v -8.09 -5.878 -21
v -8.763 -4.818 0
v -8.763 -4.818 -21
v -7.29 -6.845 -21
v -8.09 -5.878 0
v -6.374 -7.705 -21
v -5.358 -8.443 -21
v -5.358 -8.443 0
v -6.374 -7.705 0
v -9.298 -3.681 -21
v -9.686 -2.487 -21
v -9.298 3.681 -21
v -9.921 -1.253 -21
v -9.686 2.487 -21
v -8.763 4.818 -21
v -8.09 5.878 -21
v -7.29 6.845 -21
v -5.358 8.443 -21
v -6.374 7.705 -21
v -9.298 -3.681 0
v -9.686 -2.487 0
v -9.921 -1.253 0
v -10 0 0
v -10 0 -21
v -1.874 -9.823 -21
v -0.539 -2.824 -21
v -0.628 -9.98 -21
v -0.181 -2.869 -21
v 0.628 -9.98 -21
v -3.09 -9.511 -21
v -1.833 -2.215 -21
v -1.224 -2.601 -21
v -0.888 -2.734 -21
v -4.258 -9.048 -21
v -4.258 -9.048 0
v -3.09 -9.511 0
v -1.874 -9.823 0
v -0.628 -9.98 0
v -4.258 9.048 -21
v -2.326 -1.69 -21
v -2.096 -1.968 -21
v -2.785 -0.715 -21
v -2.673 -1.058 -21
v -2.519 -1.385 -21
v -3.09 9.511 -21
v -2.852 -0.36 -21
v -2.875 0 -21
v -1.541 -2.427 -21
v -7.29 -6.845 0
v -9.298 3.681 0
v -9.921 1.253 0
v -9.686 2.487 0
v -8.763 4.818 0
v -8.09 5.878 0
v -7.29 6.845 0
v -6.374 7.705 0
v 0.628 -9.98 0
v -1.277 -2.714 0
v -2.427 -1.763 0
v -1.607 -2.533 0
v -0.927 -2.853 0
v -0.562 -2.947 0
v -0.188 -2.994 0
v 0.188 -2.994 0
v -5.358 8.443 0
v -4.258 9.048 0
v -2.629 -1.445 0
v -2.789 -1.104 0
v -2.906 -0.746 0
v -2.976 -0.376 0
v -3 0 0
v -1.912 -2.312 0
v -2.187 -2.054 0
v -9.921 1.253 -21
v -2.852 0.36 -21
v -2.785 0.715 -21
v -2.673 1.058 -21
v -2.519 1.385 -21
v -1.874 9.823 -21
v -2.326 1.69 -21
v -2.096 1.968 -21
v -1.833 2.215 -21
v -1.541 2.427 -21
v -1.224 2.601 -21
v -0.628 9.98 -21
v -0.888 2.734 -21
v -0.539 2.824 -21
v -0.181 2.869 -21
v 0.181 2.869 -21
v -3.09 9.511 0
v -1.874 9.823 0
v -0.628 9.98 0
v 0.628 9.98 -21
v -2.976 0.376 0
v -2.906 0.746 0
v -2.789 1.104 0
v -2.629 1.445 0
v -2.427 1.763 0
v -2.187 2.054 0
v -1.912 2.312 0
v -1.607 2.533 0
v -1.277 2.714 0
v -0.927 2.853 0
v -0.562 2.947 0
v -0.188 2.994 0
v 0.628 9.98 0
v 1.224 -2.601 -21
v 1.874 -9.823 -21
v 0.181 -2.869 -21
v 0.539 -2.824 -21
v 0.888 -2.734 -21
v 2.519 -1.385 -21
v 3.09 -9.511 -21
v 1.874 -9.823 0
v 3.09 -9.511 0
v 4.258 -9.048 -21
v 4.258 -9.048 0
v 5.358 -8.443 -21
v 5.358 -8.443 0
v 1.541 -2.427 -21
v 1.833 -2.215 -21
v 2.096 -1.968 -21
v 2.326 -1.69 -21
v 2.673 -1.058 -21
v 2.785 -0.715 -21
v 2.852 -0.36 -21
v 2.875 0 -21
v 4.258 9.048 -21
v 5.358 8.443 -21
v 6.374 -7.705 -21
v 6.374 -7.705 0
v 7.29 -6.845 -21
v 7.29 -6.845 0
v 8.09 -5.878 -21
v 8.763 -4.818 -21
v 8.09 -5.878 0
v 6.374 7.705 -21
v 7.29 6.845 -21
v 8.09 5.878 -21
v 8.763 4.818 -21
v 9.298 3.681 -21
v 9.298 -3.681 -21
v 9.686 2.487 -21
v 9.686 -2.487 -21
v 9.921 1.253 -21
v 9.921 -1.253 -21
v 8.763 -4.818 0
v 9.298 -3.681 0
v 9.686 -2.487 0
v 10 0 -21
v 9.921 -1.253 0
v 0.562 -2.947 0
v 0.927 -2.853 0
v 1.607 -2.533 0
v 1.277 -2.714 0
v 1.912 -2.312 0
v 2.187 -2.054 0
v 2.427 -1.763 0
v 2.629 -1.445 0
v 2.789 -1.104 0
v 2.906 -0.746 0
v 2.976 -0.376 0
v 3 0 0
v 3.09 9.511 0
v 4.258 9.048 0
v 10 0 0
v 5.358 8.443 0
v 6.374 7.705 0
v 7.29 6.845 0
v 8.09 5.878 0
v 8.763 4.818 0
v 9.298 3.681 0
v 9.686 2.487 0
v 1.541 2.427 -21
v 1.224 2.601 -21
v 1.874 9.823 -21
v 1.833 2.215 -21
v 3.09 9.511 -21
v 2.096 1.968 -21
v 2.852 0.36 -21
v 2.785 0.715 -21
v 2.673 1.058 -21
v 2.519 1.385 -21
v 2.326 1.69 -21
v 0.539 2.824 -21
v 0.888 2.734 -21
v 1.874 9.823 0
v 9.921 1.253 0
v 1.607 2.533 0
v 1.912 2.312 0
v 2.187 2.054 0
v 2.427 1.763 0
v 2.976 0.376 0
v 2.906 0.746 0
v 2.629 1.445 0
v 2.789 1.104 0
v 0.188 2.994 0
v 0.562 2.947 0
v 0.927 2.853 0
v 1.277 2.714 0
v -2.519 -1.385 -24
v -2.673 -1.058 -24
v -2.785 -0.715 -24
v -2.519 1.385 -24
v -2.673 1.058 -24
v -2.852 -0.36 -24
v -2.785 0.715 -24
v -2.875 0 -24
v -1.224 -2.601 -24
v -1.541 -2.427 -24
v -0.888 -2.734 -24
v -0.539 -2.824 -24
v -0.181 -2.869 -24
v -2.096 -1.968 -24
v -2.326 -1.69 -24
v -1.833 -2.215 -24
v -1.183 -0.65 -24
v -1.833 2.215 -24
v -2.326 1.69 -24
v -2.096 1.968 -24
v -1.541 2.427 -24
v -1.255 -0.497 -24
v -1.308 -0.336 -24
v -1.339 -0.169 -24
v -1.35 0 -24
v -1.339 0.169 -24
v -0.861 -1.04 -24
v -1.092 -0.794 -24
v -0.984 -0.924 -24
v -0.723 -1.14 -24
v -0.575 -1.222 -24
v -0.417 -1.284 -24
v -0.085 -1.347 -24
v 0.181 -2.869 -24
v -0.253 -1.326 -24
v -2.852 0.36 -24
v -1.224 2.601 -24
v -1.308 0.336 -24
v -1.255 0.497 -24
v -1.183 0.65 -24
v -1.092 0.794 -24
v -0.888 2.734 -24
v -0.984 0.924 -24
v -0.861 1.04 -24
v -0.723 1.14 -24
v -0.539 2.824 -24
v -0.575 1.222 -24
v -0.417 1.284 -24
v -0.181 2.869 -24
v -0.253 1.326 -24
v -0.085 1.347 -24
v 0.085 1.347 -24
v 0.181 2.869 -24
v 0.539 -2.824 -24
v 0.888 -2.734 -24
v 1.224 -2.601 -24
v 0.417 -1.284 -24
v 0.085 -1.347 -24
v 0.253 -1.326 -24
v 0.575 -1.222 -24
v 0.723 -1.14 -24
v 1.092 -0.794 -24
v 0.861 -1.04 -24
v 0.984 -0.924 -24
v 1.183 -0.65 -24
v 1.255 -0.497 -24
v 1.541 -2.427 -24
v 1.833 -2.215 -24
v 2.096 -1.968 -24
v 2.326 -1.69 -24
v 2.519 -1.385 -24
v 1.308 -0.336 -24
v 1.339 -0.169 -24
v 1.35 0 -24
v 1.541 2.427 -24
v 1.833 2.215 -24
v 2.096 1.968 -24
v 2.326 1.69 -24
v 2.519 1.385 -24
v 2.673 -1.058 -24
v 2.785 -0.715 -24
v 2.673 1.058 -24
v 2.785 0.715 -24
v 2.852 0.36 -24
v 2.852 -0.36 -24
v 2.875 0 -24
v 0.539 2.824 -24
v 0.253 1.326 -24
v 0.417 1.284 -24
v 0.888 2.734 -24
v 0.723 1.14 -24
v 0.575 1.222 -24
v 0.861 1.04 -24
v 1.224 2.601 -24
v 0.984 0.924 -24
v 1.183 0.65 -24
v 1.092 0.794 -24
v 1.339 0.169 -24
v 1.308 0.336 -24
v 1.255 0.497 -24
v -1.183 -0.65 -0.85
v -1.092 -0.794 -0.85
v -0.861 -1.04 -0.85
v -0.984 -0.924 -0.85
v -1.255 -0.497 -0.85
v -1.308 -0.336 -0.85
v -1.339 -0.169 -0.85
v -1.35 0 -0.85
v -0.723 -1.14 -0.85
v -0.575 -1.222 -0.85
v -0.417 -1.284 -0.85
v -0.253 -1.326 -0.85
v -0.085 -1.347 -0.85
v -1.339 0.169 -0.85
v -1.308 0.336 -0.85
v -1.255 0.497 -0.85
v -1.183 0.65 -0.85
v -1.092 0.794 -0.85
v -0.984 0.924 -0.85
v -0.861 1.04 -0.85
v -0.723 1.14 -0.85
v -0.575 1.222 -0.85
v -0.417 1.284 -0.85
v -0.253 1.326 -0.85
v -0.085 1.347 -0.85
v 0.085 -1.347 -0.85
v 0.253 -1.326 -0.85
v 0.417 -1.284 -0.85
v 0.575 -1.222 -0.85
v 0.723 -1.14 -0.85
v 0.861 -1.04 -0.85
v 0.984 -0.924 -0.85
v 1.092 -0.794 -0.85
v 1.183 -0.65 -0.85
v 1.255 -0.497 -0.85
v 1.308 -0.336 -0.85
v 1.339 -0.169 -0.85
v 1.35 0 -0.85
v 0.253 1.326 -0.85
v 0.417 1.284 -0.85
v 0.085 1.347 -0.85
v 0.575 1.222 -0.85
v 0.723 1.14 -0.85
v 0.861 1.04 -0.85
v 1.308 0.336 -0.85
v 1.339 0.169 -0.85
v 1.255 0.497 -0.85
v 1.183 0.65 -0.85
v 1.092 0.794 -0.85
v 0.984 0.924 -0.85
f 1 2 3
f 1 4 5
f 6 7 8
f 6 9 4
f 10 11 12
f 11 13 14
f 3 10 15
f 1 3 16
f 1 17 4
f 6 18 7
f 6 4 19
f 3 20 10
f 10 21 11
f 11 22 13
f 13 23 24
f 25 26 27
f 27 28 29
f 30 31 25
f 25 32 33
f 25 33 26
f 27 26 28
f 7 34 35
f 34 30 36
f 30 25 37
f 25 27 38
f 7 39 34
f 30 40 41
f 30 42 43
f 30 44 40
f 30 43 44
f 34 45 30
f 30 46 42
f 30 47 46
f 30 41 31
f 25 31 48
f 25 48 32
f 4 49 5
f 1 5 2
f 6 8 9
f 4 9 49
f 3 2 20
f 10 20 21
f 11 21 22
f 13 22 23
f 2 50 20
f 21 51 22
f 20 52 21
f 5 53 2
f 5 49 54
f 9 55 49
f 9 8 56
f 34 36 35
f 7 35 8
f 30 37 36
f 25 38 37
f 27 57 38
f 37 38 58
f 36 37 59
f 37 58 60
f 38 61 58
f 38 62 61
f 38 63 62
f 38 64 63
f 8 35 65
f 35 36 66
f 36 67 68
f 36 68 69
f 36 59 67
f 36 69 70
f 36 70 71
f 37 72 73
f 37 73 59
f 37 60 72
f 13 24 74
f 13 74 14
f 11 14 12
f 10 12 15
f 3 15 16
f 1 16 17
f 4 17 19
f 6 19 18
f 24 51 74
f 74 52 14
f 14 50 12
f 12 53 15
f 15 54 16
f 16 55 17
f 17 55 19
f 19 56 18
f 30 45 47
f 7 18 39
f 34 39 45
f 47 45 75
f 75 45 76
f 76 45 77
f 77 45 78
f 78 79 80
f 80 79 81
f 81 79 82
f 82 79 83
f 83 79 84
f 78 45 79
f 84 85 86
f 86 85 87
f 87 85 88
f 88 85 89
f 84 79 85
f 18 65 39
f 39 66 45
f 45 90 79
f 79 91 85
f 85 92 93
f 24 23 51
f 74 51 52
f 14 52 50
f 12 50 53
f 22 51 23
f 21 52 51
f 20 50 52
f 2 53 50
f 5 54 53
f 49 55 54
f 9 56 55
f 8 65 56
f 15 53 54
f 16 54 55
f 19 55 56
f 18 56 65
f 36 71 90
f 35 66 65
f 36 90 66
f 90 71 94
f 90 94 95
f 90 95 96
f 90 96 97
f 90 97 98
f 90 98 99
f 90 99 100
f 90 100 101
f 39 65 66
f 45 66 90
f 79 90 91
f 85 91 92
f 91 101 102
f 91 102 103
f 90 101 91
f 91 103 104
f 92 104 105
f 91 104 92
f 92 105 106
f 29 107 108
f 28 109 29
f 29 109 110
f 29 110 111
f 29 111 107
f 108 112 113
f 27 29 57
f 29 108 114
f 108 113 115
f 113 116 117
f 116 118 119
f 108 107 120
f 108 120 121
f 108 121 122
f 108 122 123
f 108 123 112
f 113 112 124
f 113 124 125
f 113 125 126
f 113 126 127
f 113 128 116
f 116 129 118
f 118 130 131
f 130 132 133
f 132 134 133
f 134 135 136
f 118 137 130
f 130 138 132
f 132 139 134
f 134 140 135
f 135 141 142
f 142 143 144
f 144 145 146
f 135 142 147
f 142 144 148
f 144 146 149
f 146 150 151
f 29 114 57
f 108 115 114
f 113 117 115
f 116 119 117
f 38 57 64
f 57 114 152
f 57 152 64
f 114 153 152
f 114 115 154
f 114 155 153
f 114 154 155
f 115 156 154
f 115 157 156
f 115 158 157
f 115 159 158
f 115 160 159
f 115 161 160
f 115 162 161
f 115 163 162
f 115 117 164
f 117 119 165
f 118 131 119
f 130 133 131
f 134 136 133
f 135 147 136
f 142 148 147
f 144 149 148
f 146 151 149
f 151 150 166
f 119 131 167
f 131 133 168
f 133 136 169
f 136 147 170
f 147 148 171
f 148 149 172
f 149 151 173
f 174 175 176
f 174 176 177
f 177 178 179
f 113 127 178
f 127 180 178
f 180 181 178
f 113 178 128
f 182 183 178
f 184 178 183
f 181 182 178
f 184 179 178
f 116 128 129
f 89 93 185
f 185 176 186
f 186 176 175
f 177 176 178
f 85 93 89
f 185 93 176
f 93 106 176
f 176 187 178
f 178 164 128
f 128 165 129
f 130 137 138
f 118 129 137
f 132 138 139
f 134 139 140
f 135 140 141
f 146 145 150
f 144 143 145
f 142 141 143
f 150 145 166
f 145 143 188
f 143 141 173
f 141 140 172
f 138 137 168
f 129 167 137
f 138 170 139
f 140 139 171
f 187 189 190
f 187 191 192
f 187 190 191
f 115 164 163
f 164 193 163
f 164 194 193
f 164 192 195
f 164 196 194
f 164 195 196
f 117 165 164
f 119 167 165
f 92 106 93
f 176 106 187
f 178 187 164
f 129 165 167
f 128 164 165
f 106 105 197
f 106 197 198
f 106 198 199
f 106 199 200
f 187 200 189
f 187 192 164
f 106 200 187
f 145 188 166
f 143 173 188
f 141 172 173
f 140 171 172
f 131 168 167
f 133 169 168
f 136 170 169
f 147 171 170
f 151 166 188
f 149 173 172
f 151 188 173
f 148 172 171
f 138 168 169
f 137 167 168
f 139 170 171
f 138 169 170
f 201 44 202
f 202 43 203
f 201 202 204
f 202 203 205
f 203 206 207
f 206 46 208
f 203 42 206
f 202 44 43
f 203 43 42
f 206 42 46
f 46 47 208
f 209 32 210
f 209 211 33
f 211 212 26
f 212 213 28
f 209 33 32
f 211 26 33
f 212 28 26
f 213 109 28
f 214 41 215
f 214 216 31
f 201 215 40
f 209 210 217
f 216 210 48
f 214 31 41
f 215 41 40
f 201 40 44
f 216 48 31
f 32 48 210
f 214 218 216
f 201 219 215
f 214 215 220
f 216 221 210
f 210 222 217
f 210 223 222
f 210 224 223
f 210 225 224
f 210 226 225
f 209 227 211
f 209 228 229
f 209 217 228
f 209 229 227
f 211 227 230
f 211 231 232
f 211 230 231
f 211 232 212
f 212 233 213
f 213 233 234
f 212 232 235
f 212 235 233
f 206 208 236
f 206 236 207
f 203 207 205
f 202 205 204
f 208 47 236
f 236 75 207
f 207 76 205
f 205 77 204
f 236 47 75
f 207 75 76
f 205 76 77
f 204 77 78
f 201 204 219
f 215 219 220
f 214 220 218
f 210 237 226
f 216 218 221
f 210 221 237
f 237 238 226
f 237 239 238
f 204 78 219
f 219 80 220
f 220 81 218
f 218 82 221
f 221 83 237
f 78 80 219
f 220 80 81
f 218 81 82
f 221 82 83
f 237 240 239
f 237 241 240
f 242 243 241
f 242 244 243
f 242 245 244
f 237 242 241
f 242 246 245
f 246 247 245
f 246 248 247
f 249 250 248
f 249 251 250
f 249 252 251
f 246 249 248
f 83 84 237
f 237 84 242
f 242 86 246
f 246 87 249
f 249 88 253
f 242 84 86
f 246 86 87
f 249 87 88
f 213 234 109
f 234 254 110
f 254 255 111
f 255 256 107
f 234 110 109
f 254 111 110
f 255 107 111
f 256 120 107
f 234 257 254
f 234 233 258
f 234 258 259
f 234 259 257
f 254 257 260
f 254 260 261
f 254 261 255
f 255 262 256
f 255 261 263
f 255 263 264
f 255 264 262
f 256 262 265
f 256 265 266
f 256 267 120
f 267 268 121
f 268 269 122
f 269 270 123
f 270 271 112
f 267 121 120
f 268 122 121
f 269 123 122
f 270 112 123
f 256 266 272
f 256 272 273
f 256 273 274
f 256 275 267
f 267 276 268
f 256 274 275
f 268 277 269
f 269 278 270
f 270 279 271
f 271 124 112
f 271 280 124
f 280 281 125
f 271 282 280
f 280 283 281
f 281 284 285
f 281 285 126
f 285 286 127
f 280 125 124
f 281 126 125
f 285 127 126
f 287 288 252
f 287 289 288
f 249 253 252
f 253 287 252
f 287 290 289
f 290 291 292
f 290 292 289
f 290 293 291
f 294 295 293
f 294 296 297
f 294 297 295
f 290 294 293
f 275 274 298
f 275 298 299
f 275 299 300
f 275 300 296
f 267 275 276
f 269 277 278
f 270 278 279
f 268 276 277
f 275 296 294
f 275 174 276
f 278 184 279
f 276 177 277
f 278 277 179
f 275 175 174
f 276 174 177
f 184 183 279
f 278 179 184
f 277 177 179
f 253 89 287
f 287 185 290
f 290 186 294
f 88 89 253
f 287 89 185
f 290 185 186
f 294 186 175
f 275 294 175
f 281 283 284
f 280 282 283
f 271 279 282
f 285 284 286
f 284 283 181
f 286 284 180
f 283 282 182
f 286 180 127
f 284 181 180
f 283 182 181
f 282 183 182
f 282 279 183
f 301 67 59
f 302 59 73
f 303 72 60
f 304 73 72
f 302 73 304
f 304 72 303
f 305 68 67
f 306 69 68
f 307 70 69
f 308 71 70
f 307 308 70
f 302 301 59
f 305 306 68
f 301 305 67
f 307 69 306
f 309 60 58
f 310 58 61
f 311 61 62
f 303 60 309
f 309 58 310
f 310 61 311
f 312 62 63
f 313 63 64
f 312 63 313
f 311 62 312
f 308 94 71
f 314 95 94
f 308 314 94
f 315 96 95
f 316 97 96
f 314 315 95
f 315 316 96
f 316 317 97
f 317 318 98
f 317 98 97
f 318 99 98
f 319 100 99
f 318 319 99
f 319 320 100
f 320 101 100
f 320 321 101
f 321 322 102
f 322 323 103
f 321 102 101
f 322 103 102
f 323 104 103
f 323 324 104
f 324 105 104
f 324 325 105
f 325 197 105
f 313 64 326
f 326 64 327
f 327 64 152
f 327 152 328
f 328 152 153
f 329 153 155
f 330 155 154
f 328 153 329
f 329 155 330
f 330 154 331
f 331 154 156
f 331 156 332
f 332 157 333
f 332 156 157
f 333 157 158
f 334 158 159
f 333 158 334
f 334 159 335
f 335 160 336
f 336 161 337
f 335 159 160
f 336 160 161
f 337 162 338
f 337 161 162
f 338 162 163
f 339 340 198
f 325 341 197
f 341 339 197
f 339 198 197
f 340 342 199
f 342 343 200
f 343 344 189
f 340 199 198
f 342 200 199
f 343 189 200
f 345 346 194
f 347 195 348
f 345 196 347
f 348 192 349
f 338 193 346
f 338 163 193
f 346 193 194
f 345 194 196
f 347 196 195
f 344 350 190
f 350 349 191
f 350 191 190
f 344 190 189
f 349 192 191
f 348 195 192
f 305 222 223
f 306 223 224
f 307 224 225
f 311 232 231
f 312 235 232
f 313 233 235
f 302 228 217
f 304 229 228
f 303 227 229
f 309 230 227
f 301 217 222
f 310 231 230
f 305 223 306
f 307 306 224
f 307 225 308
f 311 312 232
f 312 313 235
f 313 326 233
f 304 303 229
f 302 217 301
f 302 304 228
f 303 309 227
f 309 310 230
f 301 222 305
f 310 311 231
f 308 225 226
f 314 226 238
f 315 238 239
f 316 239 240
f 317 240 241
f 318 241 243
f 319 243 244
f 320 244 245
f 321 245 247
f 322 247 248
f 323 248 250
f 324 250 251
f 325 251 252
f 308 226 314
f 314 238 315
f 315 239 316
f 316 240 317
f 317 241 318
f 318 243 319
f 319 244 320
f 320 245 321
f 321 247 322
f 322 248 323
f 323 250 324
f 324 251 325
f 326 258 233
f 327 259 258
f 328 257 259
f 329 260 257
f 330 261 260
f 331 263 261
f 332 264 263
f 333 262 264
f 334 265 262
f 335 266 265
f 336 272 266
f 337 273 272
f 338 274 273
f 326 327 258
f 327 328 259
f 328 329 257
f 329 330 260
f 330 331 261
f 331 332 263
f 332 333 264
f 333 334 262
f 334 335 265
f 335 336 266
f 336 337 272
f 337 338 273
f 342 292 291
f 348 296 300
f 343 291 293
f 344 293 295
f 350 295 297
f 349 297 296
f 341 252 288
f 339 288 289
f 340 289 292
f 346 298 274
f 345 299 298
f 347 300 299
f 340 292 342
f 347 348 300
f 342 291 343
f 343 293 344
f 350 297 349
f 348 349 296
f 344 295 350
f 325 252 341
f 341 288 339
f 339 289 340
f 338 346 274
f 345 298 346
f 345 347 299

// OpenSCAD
$fn = 50;


difference() {
	union() {
		translate(v = [0, 0, -21.0000000000]) {
			cylinder(h = 21, r = 10.0000000000);
		}
		#translate(v = [0, 0, -24.0000000000]) {
			cylinder(h = 24, r = 2.8750000000);
		}
	}
	union() {
		translate(v = [0, 0, 0]) {
			rotate(a = [0, 0, 0]) {
				difference() {
					union() {
						translate(v = [0, 0, -24.0000000000]) {
							cylinder(h = 24, r = 1.0000000000);
						}
						translate(v = [0, 0, -0.8500000000]) {
							cylinder(h = 0.8500000000, r1 = 1.3500000000, r2 = 3.0000000000);
						}
						translate(v = [0, 0, -24.0000000000]) {
							cylinder(h = 24, r = 1.3500000000);
						}
						translate(v = [0, 0, -24.0000000000]) {
							cylinder(h = 24, r = 1.0000000000);
						}
					}
					union();
				}
			}
		}
	}
}
